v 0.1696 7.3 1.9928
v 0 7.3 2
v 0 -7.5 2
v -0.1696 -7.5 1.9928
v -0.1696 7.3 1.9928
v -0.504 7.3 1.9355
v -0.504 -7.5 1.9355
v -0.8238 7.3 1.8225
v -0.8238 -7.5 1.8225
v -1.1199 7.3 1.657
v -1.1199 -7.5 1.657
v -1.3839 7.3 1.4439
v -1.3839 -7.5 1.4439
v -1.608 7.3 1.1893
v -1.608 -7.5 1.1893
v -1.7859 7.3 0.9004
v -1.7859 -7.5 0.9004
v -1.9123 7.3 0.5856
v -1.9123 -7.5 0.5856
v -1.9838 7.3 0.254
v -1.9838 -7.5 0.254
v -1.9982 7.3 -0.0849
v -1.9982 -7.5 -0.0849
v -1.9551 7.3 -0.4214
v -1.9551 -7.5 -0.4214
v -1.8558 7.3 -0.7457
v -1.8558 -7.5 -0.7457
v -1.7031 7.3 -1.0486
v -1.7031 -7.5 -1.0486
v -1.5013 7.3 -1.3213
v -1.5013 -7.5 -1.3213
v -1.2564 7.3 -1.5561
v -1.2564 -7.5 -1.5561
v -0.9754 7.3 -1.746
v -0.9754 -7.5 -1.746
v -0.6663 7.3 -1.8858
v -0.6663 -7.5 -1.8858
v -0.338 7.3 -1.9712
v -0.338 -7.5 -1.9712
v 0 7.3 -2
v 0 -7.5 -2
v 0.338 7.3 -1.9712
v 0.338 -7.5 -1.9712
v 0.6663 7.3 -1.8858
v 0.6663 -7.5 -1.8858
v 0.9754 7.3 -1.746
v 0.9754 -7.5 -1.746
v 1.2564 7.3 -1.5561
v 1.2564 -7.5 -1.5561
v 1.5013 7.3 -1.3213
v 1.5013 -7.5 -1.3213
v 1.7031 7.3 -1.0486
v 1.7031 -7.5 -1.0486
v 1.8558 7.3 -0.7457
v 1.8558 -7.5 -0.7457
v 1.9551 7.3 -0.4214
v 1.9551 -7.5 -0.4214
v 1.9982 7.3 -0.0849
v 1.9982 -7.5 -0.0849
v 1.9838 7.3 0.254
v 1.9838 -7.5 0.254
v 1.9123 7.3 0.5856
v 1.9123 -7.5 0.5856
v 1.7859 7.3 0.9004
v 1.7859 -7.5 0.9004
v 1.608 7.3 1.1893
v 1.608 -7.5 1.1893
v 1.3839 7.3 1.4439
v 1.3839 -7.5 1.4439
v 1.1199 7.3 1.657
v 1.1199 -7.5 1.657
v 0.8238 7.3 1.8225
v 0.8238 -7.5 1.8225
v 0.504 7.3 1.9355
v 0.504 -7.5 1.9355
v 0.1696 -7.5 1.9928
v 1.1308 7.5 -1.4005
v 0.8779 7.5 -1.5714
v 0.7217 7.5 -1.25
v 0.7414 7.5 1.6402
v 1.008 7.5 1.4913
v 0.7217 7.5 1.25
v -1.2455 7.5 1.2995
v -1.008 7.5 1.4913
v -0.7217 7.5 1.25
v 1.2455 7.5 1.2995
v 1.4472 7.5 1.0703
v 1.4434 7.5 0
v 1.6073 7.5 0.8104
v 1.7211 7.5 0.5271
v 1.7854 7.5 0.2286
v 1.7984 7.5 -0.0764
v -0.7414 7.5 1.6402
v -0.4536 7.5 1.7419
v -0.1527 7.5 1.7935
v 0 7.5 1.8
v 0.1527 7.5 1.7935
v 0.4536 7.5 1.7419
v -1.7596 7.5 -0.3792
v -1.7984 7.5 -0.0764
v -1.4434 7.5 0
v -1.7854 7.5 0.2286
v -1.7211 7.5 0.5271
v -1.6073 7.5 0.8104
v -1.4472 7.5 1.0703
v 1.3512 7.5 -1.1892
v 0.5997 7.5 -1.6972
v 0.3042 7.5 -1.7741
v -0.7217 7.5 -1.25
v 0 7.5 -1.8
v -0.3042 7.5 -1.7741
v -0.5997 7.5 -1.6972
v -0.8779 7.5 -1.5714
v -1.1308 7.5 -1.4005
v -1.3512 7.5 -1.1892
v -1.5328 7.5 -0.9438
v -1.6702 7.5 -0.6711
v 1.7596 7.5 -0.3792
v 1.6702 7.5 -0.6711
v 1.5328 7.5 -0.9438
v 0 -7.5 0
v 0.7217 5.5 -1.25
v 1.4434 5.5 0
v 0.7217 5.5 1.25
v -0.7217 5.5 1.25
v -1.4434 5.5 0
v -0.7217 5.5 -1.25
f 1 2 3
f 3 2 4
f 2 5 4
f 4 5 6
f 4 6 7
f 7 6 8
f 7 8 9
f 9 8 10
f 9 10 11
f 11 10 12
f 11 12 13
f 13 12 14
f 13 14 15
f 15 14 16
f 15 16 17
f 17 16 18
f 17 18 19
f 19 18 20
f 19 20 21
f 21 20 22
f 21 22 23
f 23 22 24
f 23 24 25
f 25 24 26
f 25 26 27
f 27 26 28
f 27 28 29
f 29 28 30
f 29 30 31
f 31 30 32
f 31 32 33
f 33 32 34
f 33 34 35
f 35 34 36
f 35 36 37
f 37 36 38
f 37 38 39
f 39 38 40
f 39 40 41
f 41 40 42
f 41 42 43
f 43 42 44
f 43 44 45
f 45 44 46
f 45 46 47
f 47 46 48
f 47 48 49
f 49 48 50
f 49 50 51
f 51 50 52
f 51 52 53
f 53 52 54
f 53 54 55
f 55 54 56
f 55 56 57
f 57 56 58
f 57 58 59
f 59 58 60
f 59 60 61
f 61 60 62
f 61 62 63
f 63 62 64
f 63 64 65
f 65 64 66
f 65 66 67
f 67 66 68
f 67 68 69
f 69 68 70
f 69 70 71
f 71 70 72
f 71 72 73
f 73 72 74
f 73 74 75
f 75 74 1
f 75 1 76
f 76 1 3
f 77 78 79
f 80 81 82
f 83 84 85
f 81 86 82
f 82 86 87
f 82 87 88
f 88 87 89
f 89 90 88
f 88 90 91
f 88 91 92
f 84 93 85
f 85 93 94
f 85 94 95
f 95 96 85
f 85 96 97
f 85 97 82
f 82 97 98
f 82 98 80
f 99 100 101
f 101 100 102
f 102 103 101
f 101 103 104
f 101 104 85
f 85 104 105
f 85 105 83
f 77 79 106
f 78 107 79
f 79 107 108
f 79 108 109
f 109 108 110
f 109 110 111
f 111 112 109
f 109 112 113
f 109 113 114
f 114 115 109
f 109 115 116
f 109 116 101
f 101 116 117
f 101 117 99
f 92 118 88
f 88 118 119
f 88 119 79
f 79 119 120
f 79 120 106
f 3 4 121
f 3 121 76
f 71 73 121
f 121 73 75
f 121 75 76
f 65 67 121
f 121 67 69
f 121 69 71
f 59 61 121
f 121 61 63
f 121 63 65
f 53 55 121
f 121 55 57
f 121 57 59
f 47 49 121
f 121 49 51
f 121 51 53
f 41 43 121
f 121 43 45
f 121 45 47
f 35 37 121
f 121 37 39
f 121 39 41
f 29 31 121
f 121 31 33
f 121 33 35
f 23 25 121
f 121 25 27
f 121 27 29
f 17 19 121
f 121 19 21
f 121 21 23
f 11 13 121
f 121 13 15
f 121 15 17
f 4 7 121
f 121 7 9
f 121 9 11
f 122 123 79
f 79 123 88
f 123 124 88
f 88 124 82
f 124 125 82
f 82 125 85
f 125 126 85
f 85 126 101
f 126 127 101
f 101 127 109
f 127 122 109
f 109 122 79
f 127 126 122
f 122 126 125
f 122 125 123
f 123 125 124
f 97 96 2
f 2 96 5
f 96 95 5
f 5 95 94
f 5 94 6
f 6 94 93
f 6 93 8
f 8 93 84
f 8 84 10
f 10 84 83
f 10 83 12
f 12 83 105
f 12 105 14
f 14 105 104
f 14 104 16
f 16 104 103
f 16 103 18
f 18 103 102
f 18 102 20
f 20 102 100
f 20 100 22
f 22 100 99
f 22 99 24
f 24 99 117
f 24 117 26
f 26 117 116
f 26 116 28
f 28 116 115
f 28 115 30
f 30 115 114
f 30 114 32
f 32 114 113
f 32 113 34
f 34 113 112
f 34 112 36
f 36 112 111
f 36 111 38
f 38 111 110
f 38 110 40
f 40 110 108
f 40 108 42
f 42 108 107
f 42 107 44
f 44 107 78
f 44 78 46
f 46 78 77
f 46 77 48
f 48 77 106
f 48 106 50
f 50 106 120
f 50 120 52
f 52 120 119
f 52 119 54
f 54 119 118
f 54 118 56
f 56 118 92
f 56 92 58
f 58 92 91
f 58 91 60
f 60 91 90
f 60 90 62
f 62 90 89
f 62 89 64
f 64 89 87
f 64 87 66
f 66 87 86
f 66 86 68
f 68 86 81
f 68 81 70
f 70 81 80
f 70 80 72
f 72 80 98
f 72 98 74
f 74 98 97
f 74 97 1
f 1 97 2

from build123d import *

# Parameters (mm, degrees)
SKETCH1_R           = 2
BOSS_EXTRUDE1_DEPTH = 7.5
CUT_EXTRUDE1_DEPTH  = 2
CHAMFER1_SIZE       = 0.2


with BuildPart() as part:
    # Sketch1 → Boss-Extrude1 (new, symmetric)
    with BuildSketch(Plane(origin=(0, 0, 0), x_dir=(1, 0, 0), z_dir=(0, 1, 0))):
        with Locations(Location((0, 0, 0), (0, 0, 270))):
            Circle(SKETCH1_R)
    extrude(amount=BOSS_EXTRUDE1_DEPTH, both=True)

    # Sketch2 → Cut-Extrude1 (cut)
    with BuildSketch(Plane(origin=(0, 7.5, 0), x_dir=(1, 0, 0), z_dir=(0, 1, 0))):
        Polygon((0.721687836, 1.25), (-0.721687836, 1.25), (-1.443375673, 0), (-0.721687836, -1.25), (0.721687836, -1.25), (1.443375673, 0), align=None)
    extrude(amount=-CUT_EXTRUDE1_DEPTH, mode=Mode.SUBTRACT)

    # Chamfer1
    chamfer1_edges = [part.edges().sort_by_distance(p)[0] for p in [
        (0, 7.5, -2),
    ]]
    chamfer(chamfer1_edges, length=CHAMFER1_SIZE)


solid = part.part
